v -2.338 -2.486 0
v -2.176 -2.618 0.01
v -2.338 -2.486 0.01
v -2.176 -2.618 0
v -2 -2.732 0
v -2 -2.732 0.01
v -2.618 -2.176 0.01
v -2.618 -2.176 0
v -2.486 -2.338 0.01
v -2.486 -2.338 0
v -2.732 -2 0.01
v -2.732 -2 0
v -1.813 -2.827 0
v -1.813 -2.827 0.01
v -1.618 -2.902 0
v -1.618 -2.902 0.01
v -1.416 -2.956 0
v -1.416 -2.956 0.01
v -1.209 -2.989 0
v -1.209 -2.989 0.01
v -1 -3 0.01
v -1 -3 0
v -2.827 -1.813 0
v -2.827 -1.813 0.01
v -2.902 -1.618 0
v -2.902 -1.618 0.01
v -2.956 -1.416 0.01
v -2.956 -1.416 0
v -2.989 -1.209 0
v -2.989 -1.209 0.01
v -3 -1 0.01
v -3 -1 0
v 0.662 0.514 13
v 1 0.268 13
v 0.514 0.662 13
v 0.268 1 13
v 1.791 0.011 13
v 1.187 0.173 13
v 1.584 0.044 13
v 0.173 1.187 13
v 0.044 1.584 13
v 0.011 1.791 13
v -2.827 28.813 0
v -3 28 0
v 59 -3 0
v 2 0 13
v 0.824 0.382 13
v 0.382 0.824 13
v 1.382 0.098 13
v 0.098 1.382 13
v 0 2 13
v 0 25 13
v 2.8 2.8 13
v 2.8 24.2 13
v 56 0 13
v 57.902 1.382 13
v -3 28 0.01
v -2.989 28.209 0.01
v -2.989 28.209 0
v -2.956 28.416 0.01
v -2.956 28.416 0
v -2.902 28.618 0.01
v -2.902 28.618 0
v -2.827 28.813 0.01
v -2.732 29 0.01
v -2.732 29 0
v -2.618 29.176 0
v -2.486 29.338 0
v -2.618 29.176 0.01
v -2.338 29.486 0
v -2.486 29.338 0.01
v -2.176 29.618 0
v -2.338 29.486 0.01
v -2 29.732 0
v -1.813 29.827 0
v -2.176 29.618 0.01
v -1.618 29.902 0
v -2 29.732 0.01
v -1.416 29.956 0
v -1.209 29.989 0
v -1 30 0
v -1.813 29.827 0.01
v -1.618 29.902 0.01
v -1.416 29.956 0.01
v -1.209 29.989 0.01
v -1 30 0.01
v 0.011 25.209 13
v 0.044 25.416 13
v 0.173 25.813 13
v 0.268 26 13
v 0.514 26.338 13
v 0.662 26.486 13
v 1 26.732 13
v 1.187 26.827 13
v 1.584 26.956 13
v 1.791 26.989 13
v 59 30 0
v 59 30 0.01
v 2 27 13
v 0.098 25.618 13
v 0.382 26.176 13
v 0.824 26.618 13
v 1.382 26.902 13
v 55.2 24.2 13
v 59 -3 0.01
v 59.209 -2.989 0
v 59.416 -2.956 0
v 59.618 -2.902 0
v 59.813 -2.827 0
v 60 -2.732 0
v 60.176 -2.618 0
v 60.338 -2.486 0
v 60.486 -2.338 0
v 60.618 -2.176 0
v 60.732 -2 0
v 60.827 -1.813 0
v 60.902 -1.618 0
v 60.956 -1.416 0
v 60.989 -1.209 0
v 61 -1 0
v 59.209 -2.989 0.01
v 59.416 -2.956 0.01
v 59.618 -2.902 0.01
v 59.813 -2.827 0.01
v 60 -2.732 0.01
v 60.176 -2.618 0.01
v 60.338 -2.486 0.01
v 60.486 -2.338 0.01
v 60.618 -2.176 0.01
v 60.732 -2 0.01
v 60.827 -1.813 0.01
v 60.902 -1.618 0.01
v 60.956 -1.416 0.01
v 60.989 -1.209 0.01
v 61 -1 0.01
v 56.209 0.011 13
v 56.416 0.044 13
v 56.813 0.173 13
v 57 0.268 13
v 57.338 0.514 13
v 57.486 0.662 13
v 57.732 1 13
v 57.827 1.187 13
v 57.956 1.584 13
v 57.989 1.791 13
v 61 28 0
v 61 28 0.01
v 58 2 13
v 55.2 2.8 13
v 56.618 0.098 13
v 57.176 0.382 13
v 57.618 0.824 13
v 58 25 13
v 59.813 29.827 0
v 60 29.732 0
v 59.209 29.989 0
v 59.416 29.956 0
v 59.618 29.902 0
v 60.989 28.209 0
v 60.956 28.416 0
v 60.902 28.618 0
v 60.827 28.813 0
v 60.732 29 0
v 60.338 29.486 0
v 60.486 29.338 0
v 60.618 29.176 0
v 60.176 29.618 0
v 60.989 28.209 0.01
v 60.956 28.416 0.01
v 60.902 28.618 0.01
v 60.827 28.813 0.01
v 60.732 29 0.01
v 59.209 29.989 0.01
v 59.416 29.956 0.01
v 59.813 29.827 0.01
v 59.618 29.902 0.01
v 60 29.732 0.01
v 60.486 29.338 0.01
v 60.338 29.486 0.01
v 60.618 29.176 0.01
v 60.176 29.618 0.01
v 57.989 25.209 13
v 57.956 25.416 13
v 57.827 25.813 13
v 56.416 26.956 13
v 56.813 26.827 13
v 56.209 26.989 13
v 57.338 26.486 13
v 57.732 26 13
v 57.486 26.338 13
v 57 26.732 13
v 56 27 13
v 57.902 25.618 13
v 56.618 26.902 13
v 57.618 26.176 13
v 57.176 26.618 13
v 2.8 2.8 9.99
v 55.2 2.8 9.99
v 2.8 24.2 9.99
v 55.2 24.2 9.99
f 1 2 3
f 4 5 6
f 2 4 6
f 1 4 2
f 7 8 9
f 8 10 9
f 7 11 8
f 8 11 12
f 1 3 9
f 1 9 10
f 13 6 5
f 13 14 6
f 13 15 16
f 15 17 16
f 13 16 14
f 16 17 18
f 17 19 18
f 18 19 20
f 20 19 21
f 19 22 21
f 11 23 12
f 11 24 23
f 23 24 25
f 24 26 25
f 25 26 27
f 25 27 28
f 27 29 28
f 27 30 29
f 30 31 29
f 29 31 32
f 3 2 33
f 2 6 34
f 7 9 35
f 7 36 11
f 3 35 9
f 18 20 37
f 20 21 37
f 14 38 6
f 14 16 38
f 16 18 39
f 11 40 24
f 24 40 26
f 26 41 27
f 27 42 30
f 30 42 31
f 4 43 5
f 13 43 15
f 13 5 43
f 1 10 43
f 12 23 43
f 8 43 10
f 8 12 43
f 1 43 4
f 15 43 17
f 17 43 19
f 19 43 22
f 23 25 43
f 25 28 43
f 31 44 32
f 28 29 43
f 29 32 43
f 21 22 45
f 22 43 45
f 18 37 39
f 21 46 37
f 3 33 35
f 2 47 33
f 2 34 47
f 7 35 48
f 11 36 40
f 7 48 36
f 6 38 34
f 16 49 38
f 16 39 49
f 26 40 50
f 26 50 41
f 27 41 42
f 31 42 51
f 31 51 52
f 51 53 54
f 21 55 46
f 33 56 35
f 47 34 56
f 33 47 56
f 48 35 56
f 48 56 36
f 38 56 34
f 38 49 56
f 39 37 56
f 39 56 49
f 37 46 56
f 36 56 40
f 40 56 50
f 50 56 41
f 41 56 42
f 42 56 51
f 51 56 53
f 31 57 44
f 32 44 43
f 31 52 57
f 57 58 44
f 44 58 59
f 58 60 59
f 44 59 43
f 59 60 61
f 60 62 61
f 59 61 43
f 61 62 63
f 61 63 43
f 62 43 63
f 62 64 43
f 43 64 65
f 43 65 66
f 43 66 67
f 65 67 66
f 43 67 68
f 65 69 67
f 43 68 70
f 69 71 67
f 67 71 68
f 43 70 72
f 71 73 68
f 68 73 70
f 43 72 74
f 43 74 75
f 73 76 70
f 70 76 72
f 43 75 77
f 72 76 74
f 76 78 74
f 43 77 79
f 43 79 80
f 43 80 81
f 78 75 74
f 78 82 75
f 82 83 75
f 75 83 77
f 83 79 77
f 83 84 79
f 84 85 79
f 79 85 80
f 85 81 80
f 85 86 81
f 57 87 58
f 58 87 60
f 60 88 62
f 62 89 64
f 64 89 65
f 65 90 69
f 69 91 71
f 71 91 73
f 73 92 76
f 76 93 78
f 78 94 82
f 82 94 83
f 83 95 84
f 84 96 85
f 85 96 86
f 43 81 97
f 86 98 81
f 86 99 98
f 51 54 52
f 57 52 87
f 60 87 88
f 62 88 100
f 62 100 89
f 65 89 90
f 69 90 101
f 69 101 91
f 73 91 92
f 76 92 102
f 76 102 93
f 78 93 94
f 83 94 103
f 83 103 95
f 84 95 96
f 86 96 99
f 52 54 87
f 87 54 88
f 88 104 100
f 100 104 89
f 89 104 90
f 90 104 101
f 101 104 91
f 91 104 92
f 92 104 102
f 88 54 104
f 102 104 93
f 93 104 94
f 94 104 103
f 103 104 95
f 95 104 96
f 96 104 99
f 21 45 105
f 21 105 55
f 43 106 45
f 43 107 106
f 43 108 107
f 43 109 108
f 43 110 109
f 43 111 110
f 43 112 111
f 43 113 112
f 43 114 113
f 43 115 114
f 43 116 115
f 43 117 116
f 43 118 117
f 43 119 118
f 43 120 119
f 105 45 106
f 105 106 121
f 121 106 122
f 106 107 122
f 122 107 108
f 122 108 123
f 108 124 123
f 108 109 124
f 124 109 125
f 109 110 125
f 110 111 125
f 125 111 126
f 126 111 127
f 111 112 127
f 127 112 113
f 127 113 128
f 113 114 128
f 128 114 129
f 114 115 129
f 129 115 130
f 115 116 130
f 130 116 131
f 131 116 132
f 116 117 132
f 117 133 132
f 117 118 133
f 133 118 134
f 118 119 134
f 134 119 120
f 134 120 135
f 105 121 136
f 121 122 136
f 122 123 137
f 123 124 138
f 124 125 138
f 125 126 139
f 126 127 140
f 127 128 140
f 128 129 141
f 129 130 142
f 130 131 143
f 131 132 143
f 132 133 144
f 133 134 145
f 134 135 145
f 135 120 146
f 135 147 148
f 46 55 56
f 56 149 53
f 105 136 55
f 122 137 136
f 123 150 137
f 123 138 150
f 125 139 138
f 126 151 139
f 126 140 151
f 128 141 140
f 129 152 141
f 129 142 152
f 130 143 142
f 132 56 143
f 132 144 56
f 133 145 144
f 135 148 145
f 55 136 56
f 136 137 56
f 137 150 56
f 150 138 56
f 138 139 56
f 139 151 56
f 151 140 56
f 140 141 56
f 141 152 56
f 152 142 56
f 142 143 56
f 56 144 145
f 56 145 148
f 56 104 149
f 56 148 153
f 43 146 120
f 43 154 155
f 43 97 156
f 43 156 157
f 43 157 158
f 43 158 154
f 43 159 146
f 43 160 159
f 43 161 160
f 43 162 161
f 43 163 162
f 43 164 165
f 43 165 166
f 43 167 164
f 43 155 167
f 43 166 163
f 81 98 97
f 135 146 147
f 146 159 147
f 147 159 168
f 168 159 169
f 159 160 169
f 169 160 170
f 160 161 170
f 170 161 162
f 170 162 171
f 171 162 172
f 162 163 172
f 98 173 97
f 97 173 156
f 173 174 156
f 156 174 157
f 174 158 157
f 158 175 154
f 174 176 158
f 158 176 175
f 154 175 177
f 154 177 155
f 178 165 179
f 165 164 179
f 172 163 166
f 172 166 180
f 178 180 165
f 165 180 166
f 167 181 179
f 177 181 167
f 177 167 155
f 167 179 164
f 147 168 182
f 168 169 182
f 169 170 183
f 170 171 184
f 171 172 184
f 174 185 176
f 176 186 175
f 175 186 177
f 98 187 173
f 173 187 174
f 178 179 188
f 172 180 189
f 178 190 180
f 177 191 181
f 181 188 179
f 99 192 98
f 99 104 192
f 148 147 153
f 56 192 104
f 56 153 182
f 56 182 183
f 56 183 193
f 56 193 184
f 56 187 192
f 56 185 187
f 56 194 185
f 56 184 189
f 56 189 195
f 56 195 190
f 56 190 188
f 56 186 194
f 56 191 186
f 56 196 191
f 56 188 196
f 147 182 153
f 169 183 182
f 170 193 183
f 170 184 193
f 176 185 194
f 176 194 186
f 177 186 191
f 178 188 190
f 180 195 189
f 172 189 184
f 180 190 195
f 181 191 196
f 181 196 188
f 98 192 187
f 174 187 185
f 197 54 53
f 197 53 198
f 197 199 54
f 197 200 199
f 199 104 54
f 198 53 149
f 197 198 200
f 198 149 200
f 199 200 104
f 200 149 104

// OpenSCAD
// file: ../../../modules/scad/roundedcube.scad
// More information: https://danielupshaw.com/openscad-rounded-corners/


// Examples
// color("Yellow")
// roundedcube(3, true, 0.7, "xmin");

// translate(v = [1, 0, 2])
// color("Pink")
// roundedcube([4, 2, 2], false, 0.6, "zmax");

// translate(v = [-4, -1, 2])
// color("Lightblue")
// roundedcube(2, false);

// translate(v = [0, 0, 6])
// color("Orange")
// roundedcube([3, 2, 2], true, 0.2);

// translate(v = [2.5, -0.5, 5])
// color("Green")
// roundedcube([3, 2, 2], false, 0.4, "z");

// Set to 0.01 for higher definition curves (renders slower)
$fs = 0.15;

module roundedcube(size = [1, 1, 1], center = false, radius = 0.5, apply_to = "all") {
	// If single value, convert to [x, y, z] vector
	size = (size[0] == undef) ? [size, size, size] : size;

	translate_min = radius;
	translate_xmax = size[0] - radius;
	translate_ymax = size[1] - radius;
	translate_zmax = size[2] - radius;

	diameter = radius * 2;

	obj_translate = (center == false) ?
		[0, 0, 0] : [
			-(size[0] / 2),
			-(size[1] / 2),
			-(size[2] / 2)
		];

	translate(v = obj_translate) {
		hull() {
			for (translate_x = [translate_min, translate_xmax]) {
				x_at = (translate_x == translate_min) ? "min" : "max";
				for (translate_y = [translate_min, translate_ymax]) {
					y_at = (translate_y == translate_min) ? "min" : "max";
					for (translate_z = [translate_min, translate_zmax]) {
						z_at = (translate_z == translate_min) ? "min" : "max";

						translate(v = [translate_x, translate_y, translate_z])
						if (
							(apply_to == "all") ||
							(apply_to == "xmin" && x_at == "min") || (apply_to == "xmax" && x_at == "max") ||
							(apply_to == "ymin" && y_at == "min") || (apply_to == "ymax" && y_at == "max") ||
							(apply_to == "zmin" && z_at == "min") || (apply_to == "zmax" && z_at == "max")
						) {
							sphere(r = radius);
						} else {
							rotate = 
								(apply_to == "xmin" || apply_to == "xmax" || apply_to == "x") ? [0, 90, 0] : (
								(apply_to == "ymin" || apply_to == "ymax" || apply_to == "y") ? [90, 90, 0] :
								[0, 0, 0]
							);
							rotate(a = rotate)
							cylinder(h = diameter, r = radius, center = true);
						}
					}
				}
			}
		}
	}
}
// main file
// ============================================================
// CFS Feet – Erhöhungsfüße für das Creality CFS
// TPU-Fuß mit umlaufender Kante, damit das CFS nicht verrutscht.
// Die 4 Außenecken sind abgerundet, nach unten hin wird er breiter.
// ============================================================

use <../../../modules/scad/roundedcube.scad>

// --- Render Settings ----------------------------------------
$fn = 60;

// --- Parameters ---------------------------------------------
_foot_x        = 52;  // Breite des CFS-Fußes [mm]
_foot_y        = 21;  // Tiefe des CFS-Fußes [mm]
_height        = 10;  // Erhöhung des CFS (bestimmt, wie viel höher das CFS steht) [mm]
_oversize      = 3;   // Überstand rundherum [mm]
_rim_height    = 3;   // Höhe der umlaufenden Kante [mm]
_corner_radius = 2;   // Rundung der 4 Außenecken [mm]
_fit_tolerance = 0.4; // Spiel für den Sitz des CFS-Fußes [mm]
_bottom_flare  = 3;   // Verbreiterung nach unten je Seite [mm]
_cut_overhang  = 0.1; // Ausschnitt ragt über die Oberkante (gegen Artefakte) [mm]

// --- Computed Values ----------------------------------------
_eps      = 0.01;                        // Toleranz gegen Render-Artefakte [mm]
_base_x   = _foot_x + 2 * _oversize;     // 56 mm – Breite des Quaders
_base_y   = _foot_y + 2 * _oversize;     // 25 mm – Tiefe des Quaders
_bottom_x = _base_x + 2 * _bottom_flare; // Breite des Fußes unten
_bottom_y = _base_y + 2 * _bottom_flare; // Tiefe des Fußes unten
_total_z  = _height + _rim_height;       // Gesamthöhe inkl. Kante
_pocket_x = _foot_x + _fit_tolerance;    // Breite der Aufnahme für den CFS-Fuß
_pocket_y = _foot_y + _fit_tolerance;    // Tiefe der Aufnahme für den CFS-Fuß

// --- Main Model ---------------------------------------------
cfs_foot();

// --- Modules ------------------------------------------------
module cfs_foot() {
    difference() {
        // Korpus: verjüngt sich nach oben – unten breiter, oben 56 × 25 mm
        hull() {
            // Unterer, breiterer Fußabdruck mit abgerundeten Ecken
            translate([_base_x / 2, _base_y / 2, 0])
                linear_extrude(_eps)
                offset(r = _corner_radius)
                square([_bottom_x - 2 * _corner_radius, _bottom_y - 2 * _corner_radius], center = true);

            // Quader mit abgerundeten Außenecken
            roundedcube([_base_x, _base_y, _total_z], false, _corner_radius, "z");
        }

        // Aussparung für den CFS-Fuß – es bleibt eine umlaufende Kante stehen
        // (ragt oben 0.1 mm über, damit keine Deckfläche-Artefakte entstehen)
        translate([
            (_base_x - _pocket_x) / 2,
            (_base_y - _pocket_y) / 2,
            _total_z - _rim_height - _eps
        ])
        cube([_pocket_x, _pocket_y, _rim_height + _eps + _cut_overhang]);
    }
}
